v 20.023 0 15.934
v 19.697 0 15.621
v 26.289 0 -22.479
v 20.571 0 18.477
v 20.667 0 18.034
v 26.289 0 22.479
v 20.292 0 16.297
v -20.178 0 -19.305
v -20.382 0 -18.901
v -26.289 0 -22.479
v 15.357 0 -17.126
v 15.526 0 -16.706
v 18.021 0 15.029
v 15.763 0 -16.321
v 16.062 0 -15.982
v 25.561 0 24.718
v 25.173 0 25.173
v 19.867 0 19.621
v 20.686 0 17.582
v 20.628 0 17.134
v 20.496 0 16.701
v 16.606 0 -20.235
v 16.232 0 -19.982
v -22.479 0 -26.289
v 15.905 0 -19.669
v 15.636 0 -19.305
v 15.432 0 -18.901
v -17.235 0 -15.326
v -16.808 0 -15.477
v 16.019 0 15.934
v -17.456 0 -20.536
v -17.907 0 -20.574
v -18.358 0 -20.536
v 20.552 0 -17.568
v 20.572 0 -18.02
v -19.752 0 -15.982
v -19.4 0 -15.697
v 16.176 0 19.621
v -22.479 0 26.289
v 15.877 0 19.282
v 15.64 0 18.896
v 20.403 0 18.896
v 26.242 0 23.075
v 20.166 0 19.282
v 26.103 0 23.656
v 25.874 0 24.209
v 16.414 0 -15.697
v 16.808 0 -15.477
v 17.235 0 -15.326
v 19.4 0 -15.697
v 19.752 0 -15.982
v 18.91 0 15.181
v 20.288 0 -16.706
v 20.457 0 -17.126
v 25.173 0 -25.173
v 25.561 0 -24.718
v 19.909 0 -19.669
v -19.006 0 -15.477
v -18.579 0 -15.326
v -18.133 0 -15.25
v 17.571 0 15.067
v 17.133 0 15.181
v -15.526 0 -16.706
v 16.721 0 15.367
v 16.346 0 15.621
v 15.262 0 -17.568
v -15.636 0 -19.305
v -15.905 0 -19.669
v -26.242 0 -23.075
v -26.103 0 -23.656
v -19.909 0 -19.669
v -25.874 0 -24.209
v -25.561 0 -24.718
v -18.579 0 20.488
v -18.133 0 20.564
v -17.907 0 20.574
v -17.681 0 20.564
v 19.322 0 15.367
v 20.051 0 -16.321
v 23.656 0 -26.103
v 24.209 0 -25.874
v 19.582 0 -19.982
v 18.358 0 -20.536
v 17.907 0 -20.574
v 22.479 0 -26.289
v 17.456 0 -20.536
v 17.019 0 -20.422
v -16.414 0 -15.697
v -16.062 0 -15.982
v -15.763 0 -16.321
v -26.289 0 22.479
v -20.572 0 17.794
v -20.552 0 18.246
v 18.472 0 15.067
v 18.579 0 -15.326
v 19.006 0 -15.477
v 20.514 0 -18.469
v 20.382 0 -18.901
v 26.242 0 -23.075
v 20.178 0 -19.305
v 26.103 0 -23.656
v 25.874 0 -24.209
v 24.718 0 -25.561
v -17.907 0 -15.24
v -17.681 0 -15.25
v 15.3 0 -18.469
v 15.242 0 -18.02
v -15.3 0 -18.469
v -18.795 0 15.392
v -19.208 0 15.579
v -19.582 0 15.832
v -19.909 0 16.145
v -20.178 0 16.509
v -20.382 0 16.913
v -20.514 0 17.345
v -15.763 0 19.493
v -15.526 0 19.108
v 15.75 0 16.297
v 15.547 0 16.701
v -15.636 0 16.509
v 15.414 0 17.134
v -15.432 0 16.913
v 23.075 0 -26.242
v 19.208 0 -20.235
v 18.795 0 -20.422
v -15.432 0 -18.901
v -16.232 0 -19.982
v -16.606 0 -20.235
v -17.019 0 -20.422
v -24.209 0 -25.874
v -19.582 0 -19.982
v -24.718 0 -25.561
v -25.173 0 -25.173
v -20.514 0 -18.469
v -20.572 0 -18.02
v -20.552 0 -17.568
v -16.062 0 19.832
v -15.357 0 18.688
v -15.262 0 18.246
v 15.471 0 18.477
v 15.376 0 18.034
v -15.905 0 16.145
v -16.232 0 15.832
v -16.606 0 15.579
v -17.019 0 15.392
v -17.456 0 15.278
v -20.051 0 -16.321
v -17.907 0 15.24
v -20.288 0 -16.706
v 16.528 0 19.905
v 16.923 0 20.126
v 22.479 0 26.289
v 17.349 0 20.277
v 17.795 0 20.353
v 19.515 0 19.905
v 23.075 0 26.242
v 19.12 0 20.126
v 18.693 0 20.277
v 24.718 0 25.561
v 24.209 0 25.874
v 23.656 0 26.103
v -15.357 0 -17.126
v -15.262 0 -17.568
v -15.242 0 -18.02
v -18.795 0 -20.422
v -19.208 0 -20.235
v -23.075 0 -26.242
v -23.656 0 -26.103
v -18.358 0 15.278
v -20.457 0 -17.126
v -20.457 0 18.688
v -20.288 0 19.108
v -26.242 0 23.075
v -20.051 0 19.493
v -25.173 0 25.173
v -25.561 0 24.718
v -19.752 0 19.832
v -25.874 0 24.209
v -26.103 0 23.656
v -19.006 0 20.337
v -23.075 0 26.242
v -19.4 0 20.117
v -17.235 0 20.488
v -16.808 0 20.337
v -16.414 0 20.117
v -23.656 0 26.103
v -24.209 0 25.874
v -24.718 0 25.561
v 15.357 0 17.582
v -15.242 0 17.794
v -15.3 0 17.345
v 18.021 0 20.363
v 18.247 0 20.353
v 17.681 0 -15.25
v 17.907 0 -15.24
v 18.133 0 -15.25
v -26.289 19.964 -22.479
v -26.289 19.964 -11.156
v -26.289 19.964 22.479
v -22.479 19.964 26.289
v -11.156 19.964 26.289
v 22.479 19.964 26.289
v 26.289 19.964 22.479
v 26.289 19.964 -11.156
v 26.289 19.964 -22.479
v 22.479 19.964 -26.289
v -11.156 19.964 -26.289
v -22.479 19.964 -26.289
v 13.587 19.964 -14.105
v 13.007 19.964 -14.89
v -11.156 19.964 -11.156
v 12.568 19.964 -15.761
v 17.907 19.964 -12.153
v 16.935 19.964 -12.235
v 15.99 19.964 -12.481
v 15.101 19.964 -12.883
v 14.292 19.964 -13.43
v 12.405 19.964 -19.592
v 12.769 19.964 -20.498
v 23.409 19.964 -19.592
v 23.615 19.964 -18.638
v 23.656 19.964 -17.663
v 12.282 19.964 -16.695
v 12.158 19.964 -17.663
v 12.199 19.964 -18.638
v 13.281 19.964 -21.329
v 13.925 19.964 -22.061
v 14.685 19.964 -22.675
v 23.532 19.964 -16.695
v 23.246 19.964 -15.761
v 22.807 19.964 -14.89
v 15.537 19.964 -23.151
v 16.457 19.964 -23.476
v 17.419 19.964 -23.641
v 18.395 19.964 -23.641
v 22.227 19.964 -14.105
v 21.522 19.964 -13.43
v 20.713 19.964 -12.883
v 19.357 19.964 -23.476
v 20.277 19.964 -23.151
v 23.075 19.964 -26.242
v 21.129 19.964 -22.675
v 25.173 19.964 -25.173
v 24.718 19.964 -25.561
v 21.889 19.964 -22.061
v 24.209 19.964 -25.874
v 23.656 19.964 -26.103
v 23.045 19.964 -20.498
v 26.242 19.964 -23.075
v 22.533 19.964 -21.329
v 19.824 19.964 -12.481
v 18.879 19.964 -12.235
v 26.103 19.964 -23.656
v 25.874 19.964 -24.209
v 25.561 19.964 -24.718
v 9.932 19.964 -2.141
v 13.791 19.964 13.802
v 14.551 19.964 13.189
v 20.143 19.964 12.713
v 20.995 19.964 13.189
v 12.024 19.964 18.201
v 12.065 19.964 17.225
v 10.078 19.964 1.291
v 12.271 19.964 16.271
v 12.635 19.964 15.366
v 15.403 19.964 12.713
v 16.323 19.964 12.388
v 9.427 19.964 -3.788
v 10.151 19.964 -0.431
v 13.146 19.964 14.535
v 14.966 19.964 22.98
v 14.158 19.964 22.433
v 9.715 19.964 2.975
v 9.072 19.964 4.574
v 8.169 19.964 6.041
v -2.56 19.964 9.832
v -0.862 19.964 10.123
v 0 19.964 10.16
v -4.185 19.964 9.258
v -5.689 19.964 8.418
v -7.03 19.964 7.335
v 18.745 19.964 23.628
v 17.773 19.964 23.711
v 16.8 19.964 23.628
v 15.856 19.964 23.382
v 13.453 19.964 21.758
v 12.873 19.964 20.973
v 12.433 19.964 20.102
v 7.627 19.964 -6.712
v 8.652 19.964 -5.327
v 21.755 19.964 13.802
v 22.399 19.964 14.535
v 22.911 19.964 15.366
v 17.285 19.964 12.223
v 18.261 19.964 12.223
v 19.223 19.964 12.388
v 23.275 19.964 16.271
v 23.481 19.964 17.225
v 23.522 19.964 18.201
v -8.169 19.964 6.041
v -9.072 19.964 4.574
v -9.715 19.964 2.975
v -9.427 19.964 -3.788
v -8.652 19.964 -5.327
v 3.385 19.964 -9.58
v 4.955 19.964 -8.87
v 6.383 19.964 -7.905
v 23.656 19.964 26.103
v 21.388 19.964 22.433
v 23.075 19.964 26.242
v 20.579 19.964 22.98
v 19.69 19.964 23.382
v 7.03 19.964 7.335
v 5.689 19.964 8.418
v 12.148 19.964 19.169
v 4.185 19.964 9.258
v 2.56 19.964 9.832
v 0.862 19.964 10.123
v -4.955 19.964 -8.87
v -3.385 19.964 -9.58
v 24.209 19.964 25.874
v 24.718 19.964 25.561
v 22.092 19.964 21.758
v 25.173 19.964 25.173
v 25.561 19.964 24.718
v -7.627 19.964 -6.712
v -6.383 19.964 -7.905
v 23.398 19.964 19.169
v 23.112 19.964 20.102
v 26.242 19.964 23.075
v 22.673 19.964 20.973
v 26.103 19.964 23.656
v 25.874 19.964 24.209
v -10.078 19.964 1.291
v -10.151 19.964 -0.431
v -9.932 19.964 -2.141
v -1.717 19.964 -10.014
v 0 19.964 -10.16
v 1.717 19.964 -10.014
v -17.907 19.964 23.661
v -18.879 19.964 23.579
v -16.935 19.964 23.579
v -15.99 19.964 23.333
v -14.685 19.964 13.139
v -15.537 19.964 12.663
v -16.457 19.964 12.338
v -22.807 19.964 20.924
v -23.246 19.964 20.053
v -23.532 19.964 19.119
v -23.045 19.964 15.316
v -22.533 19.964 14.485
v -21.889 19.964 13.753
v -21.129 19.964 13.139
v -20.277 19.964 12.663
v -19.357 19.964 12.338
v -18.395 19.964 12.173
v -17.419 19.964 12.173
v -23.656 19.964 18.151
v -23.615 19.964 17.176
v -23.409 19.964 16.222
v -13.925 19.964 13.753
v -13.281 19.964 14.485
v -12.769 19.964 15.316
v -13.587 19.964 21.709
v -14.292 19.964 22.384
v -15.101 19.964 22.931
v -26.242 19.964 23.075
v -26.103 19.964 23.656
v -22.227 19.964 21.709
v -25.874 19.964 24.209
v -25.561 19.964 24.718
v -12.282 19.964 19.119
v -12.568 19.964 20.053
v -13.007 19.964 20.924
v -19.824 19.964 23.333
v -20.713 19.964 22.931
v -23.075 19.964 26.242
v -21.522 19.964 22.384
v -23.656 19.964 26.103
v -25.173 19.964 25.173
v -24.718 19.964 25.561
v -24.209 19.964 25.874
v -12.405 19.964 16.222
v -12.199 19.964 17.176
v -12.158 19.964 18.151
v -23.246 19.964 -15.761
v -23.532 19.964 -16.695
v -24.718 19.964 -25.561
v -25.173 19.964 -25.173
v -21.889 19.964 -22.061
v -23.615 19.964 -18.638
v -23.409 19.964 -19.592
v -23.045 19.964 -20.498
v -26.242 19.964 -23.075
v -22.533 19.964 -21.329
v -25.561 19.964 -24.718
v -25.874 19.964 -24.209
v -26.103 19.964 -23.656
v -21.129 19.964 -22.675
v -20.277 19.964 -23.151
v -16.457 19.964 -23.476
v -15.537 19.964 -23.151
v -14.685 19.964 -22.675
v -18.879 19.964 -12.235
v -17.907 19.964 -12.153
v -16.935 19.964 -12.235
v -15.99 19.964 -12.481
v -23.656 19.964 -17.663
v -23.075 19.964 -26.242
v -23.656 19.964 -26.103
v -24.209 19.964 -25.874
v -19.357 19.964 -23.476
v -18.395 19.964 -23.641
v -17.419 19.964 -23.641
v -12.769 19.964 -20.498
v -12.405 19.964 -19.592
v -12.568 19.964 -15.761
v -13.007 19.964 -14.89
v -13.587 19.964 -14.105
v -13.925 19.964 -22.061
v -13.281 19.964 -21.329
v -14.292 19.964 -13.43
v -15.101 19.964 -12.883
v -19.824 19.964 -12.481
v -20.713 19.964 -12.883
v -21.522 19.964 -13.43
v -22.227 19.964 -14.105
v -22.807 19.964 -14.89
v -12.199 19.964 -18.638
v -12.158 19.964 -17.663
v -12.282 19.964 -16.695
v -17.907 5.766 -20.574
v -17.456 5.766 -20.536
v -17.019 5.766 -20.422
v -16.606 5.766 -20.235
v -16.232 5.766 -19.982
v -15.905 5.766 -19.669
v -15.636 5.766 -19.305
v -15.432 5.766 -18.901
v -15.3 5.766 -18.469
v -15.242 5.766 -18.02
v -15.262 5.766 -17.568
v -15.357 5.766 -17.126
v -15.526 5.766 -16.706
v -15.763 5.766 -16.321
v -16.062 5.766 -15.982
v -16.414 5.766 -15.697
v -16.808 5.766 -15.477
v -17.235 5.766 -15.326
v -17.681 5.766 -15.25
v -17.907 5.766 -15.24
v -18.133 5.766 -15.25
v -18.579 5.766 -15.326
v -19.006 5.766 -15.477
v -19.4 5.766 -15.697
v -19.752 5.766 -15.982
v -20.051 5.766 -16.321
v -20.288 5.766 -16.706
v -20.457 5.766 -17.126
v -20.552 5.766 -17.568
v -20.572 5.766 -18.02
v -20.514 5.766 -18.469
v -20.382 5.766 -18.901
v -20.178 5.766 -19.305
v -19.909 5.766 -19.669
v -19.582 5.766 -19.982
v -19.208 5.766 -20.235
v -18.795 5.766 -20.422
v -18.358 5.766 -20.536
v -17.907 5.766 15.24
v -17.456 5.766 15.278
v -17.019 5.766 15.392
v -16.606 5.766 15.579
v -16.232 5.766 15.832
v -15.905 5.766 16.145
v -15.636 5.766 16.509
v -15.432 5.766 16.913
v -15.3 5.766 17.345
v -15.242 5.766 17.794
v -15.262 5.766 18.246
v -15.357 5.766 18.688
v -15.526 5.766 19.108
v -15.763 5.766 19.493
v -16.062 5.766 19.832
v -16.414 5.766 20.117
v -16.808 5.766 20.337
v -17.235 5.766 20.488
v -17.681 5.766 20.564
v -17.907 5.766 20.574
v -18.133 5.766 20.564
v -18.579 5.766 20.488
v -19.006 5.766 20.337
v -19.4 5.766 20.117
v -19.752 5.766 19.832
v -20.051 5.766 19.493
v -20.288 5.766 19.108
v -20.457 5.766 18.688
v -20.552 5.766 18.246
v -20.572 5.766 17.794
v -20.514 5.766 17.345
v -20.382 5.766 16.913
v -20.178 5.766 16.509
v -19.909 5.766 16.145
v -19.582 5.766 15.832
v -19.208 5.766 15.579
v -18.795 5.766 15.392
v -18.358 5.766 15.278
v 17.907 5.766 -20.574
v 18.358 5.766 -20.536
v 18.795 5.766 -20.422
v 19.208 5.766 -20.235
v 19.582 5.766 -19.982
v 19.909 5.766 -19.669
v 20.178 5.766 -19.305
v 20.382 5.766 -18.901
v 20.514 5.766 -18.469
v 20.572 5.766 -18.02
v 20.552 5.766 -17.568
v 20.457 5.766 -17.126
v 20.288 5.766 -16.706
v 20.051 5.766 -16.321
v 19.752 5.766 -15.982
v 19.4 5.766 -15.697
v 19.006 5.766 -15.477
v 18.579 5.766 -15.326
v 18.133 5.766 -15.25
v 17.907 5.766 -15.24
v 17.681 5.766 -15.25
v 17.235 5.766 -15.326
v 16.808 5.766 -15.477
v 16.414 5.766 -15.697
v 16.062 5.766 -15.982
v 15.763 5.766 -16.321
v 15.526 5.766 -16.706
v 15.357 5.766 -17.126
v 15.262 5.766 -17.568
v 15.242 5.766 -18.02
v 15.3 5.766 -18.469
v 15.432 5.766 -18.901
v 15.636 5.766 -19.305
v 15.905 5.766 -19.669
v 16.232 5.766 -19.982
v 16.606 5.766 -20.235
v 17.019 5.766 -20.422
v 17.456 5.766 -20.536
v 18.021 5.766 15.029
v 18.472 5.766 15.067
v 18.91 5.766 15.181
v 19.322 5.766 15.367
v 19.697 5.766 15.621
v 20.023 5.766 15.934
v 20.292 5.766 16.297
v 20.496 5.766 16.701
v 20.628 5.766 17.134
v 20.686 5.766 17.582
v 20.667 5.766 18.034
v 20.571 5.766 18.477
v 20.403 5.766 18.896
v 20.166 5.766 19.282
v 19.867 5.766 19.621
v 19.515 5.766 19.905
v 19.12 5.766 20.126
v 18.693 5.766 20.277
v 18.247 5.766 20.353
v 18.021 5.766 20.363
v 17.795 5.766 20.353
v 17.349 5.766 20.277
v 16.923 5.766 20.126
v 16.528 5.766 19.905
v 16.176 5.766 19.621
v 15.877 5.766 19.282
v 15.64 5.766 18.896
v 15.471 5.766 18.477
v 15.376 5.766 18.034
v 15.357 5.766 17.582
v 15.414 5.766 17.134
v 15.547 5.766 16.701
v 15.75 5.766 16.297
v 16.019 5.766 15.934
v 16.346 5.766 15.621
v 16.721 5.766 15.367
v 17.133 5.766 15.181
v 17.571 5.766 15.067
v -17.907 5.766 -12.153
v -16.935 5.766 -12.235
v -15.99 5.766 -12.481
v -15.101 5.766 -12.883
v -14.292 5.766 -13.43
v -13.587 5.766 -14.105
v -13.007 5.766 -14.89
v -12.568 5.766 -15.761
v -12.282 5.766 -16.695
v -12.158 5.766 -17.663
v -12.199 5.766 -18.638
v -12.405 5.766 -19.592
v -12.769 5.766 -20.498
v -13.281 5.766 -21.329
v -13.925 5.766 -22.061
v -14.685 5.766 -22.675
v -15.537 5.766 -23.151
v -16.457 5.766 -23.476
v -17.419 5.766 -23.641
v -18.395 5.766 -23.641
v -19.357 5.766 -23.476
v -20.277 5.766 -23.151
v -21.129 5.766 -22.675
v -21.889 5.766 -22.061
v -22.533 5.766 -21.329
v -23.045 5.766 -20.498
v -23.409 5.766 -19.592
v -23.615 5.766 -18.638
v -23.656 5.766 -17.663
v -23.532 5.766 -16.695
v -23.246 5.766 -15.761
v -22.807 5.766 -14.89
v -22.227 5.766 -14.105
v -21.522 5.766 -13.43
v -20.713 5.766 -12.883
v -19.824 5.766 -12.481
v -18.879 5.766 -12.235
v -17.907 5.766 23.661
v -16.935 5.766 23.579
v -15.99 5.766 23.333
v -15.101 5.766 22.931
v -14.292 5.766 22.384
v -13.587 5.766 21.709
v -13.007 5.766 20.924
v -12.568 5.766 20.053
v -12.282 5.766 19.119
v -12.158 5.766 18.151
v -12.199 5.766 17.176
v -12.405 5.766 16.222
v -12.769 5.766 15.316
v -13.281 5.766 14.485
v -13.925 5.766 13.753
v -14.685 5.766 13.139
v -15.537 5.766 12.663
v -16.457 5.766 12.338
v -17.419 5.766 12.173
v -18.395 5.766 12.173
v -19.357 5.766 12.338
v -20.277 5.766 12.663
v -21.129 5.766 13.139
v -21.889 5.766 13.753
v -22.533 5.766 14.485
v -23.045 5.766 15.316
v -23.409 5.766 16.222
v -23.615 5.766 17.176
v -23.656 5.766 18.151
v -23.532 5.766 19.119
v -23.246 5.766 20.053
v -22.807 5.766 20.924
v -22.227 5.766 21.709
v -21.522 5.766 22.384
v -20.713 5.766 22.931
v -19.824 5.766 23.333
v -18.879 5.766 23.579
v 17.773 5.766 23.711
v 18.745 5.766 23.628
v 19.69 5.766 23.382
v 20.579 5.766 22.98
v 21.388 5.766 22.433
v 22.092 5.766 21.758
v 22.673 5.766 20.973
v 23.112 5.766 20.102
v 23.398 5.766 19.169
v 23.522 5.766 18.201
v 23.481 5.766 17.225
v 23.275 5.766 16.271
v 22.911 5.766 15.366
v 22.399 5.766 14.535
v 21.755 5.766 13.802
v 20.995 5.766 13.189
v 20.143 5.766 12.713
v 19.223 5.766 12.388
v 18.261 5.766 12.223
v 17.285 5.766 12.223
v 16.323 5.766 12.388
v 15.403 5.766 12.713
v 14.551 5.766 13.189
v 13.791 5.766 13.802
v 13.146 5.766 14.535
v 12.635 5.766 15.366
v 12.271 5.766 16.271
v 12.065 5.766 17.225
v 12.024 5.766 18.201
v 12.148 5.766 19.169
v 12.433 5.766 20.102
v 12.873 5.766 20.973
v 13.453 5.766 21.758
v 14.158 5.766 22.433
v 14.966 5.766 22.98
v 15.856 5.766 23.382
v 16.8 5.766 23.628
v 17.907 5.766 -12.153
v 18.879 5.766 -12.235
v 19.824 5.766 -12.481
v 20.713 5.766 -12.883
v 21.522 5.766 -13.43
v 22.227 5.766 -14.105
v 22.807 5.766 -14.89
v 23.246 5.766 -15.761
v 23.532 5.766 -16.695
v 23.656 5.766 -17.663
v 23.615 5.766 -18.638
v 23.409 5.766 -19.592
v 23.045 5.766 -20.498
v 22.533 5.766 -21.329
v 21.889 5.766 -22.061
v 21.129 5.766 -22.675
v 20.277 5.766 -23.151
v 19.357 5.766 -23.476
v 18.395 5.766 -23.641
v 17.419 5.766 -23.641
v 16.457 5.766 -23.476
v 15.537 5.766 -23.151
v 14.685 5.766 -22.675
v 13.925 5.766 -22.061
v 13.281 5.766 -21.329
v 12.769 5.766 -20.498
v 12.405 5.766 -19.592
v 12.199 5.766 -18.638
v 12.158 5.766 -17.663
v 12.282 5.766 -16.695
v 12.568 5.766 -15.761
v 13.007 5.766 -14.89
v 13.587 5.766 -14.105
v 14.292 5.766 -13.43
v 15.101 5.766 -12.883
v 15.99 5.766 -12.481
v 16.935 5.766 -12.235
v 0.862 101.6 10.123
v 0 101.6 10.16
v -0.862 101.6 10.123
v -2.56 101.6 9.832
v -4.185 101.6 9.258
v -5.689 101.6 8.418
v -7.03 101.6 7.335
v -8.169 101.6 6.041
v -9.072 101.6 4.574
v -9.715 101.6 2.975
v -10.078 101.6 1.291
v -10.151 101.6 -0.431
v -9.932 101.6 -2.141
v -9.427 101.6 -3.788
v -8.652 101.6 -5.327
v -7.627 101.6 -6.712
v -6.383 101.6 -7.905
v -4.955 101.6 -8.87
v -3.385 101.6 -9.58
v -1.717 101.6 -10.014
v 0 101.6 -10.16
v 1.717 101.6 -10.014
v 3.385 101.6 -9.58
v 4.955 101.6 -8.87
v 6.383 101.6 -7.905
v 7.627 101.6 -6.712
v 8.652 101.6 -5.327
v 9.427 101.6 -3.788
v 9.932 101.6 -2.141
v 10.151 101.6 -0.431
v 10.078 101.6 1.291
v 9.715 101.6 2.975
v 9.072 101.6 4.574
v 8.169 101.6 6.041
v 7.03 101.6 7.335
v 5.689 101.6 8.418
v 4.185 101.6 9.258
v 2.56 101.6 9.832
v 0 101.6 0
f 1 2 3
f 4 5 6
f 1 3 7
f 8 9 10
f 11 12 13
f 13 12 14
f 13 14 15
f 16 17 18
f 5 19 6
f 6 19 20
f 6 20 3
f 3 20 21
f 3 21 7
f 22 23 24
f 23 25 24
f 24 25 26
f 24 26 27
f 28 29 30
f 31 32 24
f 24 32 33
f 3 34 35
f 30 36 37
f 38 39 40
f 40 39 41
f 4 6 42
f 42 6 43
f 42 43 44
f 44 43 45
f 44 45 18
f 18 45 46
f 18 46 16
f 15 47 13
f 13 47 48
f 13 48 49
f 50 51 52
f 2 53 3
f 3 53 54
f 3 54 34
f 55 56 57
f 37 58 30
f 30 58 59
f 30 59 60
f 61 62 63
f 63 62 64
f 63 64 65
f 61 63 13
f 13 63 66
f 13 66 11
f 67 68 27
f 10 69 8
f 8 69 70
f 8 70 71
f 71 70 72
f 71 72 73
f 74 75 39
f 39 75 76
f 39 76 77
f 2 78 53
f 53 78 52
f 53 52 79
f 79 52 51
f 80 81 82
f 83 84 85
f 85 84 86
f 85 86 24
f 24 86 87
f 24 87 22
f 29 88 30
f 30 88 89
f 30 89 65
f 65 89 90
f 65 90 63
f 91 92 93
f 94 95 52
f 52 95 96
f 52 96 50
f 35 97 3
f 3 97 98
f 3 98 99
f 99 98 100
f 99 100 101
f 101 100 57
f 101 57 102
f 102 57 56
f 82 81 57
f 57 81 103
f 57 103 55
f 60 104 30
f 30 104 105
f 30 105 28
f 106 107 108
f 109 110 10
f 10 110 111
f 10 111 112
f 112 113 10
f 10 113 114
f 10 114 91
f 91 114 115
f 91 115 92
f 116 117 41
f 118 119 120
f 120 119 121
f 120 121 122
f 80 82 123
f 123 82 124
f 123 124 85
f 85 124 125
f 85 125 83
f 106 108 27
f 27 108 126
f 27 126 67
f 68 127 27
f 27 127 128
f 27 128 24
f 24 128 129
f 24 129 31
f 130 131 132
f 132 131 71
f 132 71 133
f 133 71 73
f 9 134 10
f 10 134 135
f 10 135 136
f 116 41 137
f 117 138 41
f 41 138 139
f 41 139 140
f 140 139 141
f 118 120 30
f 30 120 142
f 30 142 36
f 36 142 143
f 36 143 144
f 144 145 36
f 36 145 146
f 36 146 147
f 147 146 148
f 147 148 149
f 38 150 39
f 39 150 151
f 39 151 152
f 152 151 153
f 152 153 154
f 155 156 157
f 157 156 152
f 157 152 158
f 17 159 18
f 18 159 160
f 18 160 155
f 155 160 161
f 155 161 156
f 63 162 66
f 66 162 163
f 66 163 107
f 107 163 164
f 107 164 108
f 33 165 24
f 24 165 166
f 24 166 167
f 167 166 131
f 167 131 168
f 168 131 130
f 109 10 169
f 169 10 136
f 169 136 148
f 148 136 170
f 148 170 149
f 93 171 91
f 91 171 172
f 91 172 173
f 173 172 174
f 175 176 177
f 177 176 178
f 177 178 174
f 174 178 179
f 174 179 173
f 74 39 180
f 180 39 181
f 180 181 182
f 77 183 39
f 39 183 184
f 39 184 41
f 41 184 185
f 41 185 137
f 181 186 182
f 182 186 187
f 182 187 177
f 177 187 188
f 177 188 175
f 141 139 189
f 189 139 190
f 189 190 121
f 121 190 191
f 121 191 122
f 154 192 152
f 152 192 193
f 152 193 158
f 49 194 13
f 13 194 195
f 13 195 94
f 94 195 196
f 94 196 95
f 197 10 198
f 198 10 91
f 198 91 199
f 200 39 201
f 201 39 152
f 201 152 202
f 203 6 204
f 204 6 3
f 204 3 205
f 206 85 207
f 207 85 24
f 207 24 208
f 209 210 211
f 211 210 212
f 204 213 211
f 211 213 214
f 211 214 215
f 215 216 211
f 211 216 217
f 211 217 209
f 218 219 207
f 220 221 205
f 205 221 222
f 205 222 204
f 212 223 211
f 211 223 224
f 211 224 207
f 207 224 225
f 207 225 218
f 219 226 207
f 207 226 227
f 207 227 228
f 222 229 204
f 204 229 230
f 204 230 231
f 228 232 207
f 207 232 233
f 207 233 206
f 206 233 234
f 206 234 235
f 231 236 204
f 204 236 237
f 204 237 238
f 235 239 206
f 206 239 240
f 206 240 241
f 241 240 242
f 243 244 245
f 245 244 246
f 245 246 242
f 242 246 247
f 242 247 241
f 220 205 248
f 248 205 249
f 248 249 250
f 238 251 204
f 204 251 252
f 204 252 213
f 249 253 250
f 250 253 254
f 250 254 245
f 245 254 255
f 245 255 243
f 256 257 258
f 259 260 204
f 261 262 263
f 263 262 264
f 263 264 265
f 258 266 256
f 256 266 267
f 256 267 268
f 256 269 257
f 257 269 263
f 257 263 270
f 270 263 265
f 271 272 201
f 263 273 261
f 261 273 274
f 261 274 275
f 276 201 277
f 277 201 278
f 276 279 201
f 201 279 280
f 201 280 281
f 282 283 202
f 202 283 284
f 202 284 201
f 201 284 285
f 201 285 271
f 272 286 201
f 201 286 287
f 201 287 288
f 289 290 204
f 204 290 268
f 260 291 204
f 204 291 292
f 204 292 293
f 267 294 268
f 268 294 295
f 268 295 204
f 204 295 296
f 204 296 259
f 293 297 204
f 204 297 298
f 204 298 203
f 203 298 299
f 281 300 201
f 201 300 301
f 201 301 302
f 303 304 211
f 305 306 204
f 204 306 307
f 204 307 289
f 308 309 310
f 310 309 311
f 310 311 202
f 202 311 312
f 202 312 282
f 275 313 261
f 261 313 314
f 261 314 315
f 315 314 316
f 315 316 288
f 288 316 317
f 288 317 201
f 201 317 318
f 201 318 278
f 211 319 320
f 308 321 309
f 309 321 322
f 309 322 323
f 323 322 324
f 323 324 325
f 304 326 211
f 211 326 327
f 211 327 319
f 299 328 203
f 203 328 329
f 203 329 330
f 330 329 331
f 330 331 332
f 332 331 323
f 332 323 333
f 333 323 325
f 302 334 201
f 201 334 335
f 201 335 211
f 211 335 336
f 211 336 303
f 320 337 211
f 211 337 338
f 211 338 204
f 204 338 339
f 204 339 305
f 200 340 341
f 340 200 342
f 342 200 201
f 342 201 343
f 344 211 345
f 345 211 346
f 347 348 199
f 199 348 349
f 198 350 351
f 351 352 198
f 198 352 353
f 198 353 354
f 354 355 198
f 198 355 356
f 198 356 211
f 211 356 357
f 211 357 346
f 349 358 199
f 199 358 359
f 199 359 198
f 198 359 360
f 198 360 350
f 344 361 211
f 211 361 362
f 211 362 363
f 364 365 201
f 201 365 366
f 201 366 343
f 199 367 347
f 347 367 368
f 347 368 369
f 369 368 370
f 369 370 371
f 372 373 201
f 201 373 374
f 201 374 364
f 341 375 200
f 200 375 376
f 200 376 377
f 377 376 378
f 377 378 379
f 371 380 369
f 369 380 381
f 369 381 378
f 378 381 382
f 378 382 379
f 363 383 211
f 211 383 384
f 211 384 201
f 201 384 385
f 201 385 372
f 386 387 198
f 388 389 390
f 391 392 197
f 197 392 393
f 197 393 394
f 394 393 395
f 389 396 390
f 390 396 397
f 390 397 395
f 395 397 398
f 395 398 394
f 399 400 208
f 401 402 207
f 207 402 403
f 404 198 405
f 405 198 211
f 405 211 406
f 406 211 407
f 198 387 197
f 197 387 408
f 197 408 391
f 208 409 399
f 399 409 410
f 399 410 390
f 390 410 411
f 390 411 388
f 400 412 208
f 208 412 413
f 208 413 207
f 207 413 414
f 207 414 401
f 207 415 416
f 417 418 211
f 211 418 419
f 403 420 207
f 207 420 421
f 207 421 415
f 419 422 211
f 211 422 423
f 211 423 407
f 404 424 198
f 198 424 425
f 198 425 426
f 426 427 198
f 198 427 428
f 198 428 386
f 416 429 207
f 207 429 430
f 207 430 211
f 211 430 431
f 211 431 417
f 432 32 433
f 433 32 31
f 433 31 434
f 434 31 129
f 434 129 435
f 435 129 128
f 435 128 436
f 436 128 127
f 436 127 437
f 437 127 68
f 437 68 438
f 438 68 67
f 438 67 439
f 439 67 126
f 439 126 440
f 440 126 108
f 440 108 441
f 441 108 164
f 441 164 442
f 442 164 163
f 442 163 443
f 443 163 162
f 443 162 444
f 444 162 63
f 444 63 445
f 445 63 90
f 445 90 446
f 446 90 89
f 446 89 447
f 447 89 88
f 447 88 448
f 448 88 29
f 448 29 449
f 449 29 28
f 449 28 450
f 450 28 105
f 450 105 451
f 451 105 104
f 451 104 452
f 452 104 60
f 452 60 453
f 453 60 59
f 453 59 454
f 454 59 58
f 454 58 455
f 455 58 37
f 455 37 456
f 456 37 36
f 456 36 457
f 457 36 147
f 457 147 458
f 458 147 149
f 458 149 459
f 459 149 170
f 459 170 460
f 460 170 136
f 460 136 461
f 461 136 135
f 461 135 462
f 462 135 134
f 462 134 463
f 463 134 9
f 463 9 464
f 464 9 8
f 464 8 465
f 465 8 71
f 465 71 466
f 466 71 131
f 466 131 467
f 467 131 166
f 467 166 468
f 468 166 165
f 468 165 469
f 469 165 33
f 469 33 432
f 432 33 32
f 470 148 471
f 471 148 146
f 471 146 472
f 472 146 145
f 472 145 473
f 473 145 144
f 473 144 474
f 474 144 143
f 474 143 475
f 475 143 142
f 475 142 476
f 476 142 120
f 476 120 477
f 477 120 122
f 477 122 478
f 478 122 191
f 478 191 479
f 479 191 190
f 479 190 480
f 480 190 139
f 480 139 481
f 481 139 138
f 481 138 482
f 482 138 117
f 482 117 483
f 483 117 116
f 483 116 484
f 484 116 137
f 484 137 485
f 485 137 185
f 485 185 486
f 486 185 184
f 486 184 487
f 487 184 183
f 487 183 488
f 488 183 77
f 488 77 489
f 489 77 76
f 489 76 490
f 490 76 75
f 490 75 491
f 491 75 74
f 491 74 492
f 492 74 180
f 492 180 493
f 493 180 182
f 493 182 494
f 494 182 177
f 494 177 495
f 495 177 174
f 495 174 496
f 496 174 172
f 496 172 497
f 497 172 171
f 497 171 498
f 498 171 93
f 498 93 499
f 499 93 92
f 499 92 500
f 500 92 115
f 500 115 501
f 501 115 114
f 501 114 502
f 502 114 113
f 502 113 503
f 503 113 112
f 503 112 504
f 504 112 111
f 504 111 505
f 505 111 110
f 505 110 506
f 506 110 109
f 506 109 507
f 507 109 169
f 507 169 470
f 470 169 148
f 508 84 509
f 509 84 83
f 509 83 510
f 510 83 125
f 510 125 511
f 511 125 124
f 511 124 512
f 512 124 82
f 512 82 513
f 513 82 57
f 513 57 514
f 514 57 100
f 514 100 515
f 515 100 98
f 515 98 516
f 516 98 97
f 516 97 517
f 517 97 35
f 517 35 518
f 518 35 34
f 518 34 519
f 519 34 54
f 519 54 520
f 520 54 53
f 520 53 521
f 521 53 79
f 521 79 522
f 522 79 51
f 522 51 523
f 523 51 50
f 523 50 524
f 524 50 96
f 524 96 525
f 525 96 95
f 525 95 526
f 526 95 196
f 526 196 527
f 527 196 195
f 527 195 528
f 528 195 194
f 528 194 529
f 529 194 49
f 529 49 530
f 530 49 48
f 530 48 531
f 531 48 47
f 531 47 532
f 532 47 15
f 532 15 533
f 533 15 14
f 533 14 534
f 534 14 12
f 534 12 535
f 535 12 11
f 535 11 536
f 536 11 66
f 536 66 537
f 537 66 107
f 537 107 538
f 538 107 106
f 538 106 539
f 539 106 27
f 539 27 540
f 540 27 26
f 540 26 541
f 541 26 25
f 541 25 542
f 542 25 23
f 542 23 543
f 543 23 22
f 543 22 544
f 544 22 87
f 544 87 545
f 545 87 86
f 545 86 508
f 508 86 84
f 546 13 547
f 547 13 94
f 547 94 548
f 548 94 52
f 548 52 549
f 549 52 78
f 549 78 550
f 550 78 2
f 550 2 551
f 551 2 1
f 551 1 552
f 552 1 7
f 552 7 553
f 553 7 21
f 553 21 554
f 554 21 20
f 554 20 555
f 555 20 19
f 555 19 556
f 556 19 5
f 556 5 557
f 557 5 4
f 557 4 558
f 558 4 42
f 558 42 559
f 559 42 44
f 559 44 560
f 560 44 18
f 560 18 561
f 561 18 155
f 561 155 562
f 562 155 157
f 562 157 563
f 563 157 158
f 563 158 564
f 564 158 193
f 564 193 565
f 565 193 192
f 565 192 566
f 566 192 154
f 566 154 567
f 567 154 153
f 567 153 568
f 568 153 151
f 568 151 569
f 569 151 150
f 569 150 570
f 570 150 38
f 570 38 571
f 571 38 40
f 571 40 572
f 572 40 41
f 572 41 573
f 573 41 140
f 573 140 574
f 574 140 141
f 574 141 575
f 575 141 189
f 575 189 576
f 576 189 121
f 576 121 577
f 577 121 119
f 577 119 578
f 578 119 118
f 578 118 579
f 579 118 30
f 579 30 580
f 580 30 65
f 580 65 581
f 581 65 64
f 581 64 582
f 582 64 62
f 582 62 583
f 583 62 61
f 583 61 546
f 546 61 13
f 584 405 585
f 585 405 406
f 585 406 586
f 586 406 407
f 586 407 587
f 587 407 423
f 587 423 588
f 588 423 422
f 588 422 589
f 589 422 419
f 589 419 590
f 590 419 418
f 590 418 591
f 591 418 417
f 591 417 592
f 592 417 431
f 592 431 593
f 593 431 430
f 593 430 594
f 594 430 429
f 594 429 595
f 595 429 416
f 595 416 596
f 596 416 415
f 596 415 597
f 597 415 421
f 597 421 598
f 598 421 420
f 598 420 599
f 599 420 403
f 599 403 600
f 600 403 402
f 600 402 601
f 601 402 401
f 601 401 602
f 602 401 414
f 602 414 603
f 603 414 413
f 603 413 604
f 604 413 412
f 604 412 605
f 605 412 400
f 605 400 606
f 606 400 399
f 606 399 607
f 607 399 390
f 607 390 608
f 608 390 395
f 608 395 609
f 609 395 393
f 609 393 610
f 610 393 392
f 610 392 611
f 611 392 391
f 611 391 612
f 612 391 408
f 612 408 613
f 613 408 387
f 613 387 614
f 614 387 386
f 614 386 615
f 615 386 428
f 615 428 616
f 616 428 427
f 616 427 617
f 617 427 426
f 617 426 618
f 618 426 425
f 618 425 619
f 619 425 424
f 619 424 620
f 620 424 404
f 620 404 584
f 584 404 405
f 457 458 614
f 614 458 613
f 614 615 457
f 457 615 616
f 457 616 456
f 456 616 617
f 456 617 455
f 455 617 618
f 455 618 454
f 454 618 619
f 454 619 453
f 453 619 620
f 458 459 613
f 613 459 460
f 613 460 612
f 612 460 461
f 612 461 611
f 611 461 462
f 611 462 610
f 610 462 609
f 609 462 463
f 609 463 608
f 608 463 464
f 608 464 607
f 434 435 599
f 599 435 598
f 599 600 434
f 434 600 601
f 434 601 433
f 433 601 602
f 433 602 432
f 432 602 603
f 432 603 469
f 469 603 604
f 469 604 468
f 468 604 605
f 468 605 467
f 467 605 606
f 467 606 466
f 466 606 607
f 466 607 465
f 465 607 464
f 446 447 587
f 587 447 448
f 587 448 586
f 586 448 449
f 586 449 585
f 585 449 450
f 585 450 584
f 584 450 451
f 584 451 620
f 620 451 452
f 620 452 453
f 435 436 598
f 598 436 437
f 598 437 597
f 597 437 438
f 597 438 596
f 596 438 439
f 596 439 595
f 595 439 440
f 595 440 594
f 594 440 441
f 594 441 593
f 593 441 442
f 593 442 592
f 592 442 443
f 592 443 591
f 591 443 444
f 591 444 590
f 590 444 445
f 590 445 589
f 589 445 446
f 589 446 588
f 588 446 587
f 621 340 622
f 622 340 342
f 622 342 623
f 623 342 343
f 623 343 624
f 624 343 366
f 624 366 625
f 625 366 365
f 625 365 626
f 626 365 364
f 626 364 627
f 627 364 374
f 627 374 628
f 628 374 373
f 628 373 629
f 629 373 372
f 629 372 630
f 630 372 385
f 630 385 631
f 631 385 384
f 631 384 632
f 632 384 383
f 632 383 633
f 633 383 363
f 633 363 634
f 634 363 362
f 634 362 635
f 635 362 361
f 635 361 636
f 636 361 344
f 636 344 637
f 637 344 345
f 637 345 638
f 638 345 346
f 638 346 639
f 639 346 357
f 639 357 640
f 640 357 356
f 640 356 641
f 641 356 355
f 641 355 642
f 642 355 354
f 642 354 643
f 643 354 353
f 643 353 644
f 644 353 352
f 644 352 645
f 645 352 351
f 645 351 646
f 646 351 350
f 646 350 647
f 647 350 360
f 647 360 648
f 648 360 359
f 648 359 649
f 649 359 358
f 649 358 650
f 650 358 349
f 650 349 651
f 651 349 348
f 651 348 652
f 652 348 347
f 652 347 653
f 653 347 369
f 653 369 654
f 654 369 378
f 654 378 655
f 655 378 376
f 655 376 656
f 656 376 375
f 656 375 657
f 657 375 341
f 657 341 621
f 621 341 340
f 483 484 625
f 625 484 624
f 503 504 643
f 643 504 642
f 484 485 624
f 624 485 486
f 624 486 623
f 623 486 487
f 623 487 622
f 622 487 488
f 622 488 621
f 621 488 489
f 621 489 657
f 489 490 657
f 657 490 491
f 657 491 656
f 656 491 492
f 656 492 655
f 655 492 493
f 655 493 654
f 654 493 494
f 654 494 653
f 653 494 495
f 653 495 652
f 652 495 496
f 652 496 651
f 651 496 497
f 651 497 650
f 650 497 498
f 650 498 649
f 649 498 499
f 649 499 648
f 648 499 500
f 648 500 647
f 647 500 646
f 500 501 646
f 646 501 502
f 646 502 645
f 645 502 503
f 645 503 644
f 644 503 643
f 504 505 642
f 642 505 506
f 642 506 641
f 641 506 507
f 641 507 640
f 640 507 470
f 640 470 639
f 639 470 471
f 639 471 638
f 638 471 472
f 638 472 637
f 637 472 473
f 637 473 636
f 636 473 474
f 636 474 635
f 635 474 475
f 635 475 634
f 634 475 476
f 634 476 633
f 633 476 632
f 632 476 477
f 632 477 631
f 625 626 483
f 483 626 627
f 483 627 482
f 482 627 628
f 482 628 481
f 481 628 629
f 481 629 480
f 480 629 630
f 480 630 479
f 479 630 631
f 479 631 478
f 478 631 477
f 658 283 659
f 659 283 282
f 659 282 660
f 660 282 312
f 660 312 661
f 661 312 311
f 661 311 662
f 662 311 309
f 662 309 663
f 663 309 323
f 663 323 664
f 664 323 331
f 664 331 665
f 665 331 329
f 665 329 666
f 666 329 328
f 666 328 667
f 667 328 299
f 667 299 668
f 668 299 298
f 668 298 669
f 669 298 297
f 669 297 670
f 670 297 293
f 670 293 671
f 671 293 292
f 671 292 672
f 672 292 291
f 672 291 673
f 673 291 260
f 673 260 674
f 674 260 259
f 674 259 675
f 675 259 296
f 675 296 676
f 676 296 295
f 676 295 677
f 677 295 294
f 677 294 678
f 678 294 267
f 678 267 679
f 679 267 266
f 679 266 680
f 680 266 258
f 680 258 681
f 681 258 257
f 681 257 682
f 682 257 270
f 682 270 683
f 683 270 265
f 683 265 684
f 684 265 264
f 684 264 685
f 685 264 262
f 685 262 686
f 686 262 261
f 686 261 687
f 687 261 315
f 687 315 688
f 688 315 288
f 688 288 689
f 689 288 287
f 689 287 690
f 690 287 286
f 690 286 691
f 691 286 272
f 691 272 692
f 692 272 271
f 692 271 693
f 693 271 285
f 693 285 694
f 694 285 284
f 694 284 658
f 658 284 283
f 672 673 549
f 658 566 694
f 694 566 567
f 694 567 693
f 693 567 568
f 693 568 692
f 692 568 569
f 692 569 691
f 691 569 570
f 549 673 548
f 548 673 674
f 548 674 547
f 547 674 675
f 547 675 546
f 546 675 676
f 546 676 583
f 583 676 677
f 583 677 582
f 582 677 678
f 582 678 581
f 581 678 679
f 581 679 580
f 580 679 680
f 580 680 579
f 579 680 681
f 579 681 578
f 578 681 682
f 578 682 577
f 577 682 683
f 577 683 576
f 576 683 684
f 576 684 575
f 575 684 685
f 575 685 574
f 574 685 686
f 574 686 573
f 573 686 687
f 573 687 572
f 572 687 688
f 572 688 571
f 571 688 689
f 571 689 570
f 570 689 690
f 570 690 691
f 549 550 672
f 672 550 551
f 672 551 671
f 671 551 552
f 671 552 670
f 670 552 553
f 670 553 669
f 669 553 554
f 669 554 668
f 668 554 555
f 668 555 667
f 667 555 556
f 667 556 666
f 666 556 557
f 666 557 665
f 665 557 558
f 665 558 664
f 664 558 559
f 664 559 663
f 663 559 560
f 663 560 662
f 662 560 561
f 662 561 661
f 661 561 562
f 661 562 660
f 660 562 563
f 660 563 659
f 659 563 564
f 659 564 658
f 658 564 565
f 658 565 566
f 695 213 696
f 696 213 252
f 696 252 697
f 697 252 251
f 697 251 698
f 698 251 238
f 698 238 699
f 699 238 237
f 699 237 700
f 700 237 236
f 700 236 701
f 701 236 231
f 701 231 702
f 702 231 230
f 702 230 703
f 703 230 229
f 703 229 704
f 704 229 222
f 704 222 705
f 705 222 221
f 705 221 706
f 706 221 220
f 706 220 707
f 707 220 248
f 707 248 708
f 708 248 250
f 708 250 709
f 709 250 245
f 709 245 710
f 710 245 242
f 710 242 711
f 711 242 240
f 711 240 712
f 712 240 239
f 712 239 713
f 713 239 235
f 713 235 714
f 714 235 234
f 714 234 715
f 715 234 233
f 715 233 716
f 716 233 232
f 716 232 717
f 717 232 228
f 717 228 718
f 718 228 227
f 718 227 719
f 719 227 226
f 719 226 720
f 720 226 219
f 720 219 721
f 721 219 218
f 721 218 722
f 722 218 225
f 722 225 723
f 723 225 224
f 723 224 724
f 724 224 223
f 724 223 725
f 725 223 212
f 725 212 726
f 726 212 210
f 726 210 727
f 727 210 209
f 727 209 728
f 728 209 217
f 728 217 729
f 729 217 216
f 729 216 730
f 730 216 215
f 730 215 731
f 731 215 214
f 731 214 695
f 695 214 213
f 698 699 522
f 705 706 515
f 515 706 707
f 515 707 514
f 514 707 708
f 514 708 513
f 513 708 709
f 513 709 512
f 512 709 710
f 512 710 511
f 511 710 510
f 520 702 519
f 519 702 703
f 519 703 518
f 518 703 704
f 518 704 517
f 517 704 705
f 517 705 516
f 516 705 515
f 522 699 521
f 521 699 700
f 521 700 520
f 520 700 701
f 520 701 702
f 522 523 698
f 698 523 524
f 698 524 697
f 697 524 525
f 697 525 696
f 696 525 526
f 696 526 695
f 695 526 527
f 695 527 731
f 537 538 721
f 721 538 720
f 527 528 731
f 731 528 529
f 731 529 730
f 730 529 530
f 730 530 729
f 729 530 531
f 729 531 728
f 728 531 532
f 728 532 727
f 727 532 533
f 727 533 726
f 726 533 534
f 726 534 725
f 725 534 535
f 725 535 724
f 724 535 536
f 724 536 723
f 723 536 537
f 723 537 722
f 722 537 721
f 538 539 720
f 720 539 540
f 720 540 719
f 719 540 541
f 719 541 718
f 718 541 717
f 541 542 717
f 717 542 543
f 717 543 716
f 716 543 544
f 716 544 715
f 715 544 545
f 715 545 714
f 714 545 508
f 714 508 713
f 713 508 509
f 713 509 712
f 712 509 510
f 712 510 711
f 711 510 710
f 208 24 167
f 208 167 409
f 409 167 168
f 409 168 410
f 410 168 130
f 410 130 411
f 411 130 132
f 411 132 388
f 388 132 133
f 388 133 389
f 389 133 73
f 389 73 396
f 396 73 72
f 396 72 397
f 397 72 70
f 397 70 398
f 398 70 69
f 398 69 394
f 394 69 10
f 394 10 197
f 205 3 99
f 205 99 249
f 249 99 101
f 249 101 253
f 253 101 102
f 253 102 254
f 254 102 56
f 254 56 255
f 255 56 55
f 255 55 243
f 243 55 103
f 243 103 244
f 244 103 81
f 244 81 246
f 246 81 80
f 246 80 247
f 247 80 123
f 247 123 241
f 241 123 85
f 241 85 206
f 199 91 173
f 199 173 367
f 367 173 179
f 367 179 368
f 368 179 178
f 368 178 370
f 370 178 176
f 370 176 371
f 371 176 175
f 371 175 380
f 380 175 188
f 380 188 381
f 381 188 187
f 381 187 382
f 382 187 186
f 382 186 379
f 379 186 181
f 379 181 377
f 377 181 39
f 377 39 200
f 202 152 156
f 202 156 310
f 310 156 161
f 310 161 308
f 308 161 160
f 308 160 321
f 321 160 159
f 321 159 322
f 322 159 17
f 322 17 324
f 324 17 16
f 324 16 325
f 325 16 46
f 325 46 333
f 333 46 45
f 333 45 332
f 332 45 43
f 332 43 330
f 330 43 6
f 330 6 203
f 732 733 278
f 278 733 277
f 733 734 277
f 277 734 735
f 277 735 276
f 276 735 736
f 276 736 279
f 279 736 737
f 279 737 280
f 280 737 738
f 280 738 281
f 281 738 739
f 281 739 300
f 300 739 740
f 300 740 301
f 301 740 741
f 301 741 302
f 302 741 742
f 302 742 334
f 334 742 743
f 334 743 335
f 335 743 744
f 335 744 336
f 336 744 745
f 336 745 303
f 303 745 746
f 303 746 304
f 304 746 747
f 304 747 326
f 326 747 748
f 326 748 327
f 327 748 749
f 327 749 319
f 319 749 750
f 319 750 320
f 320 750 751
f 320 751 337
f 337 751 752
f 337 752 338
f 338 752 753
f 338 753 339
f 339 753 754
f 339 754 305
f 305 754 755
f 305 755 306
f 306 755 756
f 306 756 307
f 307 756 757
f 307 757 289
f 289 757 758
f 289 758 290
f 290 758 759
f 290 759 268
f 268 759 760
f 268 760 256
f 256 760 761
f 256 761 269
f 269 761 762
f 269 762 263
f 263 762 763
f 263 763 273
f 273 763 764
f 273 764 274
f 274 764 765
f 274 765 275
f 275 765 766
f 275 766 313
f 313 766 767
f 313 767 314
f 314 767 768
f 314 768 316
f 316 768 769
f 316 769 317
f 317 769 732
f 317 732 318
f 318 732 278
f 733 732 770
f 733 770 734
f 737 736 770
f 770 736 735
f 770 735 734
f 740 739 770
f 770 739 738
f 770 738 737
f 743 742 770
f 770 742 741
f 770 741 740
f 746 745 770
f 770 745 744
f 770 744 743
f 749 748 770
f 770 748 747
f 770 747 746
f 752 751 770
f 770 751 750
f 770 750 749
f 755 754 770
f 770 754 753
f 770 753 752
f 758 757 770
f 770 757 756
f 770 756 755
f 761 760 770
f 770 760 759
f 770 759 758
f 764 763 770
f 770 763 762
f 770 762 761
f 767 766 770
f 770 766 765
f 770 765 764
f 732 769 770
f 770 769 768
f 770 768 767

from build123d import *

# Parameters (mm, degrees)
SKETCH1_W           = 52.578
SKETCH1_H           = 52.578
EXTRUDE1_DEPTH      = 19.9644
EXTRUDE2_START      = -19.9644
SKETCH2_R           = 2.667
EXTRUDE2_DEPTH      = 5.7658
EXTRUDE4_START      = -19.9644
SKETCH6_R           = 5.75437
EXTRUDE4_DEPTH      = 14.1986
FILLET2_R           = 3.81
SKETCH7_R           = 10.16
BOSS_EXTRUDE1_DEPTH = 101.6


with BuildPart() as part:
    # Sketch1 → Extrude1 (new body)
    with BuildSketch(Plane(origin=(0, 0, 0), x_dir=(1, 0, 0), z_dir=(0, 1, 0))):
        Rectangle(SKETCH1_W, SKETCH1_H)
    extrude(amount=EXTRUDE1_DEPTH)

    # Sketch2 → Extrude2 (cut)
    with BuildSketch(Plane(origin=(0, 19.9644, 0), x_dir=(1, 0, 0), z_dir=(0, 1, 0)).offset(EXTRUDE2_START)):
        with Locations((-17.907, 17.907)):
            Circle(SKETCH2_R)
        with Locations((-17.907, -17.907)):
            Circle(SKETCH2_R)
        with Locations((18.02131475, -17.695628339)):
            Circle(SKETCH2_R)
        with Locations((17.907, 17.907)):
            Circle(SKETCH2_R)
    extrude(amount=EXTRUDE2_DEPTH, mode=Mode.SUBTRACT)

    # Sketch6 → Extrude4 (cut)
    with BuildSketch(Plane.XZ.offset(EXTRUDE4_START)):
        with Locations((-17.907, -17.907)):
            Circle(SKETCH6_R)
        with Locations((-17.907, 17.907)):
            Circle(SKETCH6_R)
        with Locations((17.772836554, 17.95632809)):
            Circle(SKETCH6_R)
        with Locations((17.907, -17.907)):
            Circle(SKETCH6_R)
    extrude(amount=EXTRUDE4_DEPTH, mode=Mode.SUBTRACT)

    # Fillet2
    fillet2_edges = [part.edges().sort_by_distance(p)[0] for p in [
        (-26.289, 9.9822, -26.289),
        (26.289, 9.9822, -26.289),
        (26.289, 9.9822, 26.289),
        (-26.289, 9.9822, 26.289),
    ]]
    fillet(fillet2_edges, radius=FILLET2_R)

    # Sketch7 → Boss-Extrude1 (add)
    with BuildSketch(Plane(origin=(0, 0, 0), x_dir=(1, 0, 0), z_dir=(0, 1, 0))):
        Circle(SKETCH7_R)
    extrude(amount=BOSS_EXTRUDE1_DEPTH)


solid = part.part
